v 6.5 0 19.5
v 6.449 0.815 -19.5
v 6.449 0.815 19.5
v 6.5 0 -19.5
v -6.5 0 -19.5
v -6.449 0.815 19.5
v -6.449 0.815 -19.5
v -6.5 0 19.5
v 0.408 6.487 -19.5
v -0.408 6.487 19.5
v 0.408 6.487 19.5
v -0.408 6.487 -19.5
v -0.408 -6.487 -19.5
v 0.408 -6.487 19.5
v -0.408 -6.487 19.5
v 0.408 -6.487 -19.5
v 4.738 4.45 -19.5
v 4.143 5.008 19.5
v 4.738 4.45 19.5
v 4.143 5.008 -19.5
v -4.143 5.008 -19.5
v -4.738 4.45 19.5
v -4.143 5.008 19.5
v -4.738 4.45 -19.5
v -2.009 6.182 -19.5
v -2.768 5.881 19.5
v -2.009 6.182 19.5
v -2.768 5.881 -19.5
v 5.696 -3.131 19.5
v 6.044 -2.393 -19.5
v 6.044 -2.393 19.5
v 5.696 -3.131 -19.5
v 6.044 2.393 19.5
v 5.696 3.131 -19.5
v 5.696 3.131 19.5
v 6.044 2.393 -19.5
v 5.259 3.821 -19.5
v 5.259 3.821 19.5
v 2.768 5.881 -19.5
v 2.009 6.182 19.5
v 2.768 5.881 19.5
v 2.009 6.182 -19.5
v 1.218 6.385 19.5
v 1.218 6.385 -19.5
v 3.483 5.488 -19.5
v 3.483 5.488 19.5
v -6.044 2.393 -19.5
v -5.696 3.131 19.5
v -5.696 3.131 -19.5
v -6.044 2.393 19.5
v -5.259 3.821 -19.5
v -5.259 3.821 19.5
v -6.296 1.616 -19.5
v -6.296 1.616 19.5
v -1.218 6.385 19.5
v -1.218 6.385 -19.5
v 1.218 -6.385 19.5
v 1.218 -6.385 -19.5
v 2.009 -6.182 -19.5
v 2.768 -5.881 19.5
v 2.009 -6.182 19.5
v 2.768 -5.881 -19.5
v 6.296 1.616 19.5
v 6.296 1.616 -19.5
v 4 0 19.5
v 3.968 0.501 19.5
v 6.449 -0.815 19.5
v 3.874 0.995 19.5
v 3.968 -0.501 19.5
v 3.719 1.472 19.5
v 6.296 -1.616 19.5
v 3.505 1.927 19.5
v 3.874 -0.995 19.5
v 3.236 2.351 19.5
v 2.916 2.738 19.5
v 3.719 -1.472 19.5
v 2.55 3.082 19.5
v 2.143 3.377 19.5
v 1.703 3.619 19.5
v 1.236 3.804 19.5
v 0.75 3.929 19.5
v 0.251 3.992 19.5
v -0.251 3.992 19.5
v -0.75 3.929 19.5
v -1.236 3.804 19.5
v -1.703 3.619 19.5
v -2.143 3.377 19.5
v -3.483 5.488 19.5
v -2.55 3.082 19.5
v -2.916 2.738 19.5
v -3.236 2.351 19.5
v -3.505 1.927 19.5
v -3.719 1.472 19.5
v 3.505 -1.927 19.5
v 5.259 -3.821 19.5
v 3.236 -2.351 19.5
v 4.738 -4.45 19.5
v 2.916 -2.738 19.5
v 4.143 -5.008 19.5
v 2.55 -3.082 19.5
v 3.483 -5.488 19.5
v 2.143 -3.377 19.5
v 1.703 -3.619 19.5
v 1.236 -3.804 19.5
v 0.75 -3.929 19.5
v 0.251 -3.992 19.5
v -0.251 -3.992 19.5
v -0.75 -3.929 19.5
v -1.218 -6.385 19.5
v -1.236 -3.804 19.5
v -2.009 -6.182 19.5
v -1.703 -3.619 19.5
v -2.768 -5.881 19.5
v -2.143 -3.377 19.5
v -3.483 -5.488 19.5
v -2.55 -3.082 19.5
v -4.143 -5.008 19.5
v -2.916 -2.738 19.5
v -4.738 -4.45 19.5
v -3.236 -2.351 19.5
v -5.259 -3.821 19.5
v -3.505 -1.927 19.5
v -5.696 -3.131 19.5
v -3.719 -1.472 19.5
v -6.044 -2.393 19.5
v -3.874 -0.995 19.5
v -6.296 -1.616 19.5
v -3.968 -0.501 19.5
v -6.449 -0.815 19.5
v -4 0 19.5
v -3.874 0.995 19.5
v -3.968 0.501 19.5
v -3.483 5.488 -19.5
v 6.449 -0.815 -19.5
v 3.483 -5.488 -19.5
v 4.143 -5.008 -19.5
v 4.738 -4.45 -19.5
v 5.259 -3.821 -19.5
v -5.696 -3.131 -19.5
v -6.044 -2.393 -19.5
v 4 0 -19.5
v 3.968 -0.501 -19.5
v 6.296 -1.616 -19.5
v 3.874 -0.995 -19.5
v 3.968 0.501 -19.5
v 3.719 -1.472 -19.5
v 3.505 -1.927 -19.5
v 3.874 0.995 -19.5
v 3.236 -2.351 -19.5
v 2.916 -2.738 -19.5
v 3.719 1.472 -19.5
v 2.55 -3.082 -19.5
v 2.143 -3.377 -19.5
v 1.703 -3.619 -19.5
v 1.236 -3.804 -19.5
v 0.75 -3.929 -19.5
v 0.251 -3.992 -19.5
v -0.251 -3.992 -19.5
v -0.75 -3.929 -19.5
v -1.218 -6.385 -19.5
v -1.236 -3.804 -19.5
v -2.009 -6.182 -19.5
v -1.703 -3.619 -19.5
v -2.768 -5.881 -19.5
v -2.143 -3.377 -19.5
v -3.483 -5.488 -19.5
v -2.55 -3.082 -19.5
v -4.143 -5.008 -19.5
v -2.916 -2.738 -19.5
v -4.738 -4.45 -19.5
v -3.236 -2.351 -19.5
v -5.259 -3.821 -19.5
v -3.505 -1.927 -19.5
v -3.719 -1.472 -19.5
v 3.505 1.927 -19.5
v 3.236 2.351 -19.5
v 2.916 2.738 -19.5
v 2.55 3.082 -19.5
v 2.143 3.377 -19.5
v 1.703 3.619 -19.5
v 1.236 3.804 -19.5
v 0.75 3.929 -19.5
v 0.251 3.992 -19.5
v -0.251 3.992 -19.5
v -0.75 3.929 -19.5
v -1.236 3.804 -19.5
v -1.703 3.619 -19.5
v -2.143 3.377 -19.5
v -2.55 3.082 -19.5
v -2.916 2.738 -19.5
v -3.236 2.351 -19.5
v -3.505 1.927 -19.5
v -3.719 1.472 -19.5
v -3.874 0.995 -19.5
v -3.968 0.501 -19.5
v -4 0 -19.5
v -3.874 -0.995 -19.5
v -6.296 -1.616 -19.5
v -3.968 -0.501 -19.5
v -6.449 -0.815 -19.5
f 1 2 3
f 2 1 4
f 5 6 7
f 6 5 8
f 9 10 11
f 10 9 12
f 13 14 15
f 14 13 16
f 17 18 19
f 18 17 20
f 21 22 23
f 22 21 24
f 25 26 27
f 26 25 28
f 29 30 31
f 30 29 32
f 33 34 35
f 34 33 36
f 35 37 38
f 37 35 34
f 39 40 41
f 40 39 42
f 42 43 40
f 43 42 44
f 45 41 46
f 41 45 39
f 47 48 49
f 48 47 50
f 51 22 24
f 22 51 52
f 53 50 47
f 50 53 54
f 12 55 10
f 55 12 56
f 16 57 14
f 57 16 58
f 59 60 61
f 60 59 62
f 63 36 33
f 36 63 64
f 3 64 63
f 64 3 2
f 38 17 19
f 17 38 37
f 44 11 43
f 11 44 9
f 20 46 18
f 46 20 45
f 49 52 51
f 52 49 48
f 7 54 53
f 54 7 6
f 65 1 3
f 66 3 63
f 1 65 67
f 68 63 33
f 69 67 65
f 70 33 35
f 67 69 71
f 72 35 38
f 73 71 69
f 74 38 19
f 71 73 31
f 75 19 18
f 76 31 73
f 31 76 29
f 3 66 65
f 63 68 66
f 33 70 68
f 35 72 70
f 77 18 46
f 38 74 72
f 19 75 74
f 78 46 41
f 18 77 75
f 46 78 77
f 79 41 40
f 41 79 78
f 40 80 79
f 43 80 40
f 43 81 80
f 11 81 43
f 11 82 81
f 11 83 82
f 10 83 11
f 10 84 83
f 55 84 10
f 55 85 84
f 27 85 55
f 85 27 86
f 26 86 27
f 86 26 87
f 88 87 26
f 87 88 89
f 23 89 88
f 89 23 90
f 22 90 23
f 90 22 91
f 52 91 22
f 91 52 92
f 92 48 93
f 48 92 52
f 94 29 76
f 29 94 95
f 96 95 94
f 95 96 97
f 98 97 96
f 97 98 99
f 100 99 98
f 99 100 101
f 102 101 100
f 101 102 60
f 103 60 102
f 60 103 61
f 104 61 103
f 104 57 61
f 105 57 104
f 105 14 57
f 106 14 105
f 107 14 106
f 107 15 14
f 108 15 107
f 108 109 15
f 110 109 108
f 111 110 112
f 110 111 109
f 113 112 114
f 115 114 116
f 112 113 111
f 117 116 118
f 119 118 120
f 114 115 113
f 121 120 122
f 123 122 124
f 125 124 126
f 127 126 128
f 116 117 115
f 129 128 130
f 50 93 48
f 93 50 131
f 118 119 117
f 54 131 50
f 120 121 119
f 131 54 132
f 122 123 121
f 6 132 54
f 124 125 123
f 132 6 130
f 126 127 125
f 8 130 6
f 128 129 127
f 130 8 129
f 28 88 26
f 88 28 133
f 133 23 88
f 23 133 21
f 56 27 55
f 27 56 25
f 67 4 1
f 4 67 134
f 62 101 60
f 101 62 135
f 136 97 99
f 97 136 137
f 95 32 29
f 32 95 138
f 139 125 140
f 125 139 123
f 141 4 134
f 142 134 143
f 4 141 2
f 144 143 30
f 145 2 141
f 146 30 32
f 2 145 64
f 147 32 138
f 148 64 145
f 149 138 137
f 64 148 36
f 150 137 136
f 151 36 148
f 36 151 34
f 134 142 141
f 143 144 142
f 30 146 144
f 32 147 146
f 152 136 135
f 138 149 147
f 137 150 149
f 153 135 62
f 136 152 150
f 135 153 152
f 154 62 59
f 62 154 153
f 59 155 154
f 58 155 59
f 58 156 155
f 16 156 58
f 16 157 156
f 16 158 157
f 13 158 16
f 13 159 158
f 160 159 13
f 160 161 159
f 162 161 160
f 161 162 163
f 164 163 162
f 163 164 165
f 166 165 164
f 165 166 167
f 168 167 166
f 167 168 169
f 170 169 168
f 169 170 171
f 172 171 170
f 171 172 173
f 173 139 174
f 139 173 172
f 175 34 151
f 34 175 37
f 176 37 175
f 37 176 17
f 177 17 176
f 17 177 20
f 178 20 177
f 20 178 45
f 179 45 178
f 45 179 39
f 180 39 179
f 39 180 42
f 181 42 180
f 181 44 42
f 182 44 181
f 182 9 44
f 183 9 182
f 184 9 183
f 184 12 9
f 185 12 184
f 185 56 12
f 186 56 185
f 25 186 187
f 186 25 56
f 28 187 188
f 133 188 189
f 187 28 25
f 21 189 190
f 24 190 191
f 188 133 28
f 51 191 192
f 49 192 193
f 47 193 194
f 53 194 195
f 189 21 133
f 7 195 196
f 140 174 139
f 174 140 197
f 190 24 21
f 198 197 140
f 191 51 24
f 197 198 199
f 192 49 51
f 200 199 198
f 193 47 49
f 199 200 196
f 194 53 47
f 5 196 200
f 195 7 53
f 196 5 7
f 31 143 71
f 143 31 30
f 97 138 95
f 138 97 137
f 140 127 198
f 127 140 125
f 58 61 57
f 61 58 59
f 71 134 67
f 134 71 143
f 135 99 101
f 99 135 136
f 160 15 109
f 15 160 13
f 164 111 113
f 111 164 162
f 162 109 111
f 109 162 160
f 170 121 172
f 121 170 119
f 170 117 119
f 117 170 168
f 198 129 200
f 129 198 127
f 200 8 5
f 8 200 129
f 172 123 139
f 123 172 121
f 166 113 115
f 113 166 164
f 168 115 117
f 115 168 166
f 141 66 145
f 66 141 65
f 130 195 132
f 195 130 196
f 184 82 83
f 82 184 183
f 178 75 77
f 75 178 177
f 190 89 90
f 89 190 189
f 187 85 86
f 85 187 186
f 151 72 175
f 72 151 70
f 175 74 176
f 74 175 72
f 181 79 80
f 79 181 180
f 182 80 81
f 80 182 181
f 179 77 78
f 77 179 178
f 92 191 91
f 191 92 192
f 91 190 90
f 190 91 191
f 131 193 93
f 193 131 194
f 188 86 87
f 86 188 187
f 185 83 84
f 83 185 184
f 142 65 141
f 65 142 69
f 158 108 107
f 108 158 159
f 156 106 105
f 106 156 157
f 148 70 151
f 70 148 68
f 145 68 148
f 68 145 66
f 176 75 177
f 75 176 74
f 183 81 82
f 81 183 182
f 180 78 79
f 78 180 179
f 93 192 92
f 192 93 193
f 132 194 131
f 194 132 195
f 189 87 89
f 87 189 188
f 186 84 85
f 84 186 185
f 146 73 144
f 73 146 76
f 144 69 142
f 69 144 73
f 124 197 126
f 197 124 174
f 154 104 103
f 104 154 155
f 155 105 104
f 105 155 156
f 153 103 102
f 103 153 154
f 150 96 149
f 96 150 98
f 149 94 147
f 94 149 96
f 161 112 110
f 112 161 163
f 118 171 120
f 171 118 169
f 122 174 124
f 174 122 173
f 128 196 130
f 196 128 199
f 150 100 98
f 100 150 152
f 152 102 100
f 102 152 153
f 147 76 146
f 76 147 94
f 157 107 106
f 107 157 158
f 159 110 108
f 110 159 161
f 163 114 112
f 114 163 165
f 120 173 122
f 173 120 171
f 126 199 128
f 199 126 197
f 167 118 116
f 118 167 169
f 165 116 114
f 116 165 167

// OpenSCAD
$fn = 50;


difference() {
	union() {
		translate(v = [0, 0, -19.5000000000]) {
			cylinder(h = 39, r = 6.5000000000);
		}
	}
	union() {
		translate(v = [0, 0, -100.0000000000]) {
			cylinder(h = 200, r = 4.0000000000);
		}
	}
}
